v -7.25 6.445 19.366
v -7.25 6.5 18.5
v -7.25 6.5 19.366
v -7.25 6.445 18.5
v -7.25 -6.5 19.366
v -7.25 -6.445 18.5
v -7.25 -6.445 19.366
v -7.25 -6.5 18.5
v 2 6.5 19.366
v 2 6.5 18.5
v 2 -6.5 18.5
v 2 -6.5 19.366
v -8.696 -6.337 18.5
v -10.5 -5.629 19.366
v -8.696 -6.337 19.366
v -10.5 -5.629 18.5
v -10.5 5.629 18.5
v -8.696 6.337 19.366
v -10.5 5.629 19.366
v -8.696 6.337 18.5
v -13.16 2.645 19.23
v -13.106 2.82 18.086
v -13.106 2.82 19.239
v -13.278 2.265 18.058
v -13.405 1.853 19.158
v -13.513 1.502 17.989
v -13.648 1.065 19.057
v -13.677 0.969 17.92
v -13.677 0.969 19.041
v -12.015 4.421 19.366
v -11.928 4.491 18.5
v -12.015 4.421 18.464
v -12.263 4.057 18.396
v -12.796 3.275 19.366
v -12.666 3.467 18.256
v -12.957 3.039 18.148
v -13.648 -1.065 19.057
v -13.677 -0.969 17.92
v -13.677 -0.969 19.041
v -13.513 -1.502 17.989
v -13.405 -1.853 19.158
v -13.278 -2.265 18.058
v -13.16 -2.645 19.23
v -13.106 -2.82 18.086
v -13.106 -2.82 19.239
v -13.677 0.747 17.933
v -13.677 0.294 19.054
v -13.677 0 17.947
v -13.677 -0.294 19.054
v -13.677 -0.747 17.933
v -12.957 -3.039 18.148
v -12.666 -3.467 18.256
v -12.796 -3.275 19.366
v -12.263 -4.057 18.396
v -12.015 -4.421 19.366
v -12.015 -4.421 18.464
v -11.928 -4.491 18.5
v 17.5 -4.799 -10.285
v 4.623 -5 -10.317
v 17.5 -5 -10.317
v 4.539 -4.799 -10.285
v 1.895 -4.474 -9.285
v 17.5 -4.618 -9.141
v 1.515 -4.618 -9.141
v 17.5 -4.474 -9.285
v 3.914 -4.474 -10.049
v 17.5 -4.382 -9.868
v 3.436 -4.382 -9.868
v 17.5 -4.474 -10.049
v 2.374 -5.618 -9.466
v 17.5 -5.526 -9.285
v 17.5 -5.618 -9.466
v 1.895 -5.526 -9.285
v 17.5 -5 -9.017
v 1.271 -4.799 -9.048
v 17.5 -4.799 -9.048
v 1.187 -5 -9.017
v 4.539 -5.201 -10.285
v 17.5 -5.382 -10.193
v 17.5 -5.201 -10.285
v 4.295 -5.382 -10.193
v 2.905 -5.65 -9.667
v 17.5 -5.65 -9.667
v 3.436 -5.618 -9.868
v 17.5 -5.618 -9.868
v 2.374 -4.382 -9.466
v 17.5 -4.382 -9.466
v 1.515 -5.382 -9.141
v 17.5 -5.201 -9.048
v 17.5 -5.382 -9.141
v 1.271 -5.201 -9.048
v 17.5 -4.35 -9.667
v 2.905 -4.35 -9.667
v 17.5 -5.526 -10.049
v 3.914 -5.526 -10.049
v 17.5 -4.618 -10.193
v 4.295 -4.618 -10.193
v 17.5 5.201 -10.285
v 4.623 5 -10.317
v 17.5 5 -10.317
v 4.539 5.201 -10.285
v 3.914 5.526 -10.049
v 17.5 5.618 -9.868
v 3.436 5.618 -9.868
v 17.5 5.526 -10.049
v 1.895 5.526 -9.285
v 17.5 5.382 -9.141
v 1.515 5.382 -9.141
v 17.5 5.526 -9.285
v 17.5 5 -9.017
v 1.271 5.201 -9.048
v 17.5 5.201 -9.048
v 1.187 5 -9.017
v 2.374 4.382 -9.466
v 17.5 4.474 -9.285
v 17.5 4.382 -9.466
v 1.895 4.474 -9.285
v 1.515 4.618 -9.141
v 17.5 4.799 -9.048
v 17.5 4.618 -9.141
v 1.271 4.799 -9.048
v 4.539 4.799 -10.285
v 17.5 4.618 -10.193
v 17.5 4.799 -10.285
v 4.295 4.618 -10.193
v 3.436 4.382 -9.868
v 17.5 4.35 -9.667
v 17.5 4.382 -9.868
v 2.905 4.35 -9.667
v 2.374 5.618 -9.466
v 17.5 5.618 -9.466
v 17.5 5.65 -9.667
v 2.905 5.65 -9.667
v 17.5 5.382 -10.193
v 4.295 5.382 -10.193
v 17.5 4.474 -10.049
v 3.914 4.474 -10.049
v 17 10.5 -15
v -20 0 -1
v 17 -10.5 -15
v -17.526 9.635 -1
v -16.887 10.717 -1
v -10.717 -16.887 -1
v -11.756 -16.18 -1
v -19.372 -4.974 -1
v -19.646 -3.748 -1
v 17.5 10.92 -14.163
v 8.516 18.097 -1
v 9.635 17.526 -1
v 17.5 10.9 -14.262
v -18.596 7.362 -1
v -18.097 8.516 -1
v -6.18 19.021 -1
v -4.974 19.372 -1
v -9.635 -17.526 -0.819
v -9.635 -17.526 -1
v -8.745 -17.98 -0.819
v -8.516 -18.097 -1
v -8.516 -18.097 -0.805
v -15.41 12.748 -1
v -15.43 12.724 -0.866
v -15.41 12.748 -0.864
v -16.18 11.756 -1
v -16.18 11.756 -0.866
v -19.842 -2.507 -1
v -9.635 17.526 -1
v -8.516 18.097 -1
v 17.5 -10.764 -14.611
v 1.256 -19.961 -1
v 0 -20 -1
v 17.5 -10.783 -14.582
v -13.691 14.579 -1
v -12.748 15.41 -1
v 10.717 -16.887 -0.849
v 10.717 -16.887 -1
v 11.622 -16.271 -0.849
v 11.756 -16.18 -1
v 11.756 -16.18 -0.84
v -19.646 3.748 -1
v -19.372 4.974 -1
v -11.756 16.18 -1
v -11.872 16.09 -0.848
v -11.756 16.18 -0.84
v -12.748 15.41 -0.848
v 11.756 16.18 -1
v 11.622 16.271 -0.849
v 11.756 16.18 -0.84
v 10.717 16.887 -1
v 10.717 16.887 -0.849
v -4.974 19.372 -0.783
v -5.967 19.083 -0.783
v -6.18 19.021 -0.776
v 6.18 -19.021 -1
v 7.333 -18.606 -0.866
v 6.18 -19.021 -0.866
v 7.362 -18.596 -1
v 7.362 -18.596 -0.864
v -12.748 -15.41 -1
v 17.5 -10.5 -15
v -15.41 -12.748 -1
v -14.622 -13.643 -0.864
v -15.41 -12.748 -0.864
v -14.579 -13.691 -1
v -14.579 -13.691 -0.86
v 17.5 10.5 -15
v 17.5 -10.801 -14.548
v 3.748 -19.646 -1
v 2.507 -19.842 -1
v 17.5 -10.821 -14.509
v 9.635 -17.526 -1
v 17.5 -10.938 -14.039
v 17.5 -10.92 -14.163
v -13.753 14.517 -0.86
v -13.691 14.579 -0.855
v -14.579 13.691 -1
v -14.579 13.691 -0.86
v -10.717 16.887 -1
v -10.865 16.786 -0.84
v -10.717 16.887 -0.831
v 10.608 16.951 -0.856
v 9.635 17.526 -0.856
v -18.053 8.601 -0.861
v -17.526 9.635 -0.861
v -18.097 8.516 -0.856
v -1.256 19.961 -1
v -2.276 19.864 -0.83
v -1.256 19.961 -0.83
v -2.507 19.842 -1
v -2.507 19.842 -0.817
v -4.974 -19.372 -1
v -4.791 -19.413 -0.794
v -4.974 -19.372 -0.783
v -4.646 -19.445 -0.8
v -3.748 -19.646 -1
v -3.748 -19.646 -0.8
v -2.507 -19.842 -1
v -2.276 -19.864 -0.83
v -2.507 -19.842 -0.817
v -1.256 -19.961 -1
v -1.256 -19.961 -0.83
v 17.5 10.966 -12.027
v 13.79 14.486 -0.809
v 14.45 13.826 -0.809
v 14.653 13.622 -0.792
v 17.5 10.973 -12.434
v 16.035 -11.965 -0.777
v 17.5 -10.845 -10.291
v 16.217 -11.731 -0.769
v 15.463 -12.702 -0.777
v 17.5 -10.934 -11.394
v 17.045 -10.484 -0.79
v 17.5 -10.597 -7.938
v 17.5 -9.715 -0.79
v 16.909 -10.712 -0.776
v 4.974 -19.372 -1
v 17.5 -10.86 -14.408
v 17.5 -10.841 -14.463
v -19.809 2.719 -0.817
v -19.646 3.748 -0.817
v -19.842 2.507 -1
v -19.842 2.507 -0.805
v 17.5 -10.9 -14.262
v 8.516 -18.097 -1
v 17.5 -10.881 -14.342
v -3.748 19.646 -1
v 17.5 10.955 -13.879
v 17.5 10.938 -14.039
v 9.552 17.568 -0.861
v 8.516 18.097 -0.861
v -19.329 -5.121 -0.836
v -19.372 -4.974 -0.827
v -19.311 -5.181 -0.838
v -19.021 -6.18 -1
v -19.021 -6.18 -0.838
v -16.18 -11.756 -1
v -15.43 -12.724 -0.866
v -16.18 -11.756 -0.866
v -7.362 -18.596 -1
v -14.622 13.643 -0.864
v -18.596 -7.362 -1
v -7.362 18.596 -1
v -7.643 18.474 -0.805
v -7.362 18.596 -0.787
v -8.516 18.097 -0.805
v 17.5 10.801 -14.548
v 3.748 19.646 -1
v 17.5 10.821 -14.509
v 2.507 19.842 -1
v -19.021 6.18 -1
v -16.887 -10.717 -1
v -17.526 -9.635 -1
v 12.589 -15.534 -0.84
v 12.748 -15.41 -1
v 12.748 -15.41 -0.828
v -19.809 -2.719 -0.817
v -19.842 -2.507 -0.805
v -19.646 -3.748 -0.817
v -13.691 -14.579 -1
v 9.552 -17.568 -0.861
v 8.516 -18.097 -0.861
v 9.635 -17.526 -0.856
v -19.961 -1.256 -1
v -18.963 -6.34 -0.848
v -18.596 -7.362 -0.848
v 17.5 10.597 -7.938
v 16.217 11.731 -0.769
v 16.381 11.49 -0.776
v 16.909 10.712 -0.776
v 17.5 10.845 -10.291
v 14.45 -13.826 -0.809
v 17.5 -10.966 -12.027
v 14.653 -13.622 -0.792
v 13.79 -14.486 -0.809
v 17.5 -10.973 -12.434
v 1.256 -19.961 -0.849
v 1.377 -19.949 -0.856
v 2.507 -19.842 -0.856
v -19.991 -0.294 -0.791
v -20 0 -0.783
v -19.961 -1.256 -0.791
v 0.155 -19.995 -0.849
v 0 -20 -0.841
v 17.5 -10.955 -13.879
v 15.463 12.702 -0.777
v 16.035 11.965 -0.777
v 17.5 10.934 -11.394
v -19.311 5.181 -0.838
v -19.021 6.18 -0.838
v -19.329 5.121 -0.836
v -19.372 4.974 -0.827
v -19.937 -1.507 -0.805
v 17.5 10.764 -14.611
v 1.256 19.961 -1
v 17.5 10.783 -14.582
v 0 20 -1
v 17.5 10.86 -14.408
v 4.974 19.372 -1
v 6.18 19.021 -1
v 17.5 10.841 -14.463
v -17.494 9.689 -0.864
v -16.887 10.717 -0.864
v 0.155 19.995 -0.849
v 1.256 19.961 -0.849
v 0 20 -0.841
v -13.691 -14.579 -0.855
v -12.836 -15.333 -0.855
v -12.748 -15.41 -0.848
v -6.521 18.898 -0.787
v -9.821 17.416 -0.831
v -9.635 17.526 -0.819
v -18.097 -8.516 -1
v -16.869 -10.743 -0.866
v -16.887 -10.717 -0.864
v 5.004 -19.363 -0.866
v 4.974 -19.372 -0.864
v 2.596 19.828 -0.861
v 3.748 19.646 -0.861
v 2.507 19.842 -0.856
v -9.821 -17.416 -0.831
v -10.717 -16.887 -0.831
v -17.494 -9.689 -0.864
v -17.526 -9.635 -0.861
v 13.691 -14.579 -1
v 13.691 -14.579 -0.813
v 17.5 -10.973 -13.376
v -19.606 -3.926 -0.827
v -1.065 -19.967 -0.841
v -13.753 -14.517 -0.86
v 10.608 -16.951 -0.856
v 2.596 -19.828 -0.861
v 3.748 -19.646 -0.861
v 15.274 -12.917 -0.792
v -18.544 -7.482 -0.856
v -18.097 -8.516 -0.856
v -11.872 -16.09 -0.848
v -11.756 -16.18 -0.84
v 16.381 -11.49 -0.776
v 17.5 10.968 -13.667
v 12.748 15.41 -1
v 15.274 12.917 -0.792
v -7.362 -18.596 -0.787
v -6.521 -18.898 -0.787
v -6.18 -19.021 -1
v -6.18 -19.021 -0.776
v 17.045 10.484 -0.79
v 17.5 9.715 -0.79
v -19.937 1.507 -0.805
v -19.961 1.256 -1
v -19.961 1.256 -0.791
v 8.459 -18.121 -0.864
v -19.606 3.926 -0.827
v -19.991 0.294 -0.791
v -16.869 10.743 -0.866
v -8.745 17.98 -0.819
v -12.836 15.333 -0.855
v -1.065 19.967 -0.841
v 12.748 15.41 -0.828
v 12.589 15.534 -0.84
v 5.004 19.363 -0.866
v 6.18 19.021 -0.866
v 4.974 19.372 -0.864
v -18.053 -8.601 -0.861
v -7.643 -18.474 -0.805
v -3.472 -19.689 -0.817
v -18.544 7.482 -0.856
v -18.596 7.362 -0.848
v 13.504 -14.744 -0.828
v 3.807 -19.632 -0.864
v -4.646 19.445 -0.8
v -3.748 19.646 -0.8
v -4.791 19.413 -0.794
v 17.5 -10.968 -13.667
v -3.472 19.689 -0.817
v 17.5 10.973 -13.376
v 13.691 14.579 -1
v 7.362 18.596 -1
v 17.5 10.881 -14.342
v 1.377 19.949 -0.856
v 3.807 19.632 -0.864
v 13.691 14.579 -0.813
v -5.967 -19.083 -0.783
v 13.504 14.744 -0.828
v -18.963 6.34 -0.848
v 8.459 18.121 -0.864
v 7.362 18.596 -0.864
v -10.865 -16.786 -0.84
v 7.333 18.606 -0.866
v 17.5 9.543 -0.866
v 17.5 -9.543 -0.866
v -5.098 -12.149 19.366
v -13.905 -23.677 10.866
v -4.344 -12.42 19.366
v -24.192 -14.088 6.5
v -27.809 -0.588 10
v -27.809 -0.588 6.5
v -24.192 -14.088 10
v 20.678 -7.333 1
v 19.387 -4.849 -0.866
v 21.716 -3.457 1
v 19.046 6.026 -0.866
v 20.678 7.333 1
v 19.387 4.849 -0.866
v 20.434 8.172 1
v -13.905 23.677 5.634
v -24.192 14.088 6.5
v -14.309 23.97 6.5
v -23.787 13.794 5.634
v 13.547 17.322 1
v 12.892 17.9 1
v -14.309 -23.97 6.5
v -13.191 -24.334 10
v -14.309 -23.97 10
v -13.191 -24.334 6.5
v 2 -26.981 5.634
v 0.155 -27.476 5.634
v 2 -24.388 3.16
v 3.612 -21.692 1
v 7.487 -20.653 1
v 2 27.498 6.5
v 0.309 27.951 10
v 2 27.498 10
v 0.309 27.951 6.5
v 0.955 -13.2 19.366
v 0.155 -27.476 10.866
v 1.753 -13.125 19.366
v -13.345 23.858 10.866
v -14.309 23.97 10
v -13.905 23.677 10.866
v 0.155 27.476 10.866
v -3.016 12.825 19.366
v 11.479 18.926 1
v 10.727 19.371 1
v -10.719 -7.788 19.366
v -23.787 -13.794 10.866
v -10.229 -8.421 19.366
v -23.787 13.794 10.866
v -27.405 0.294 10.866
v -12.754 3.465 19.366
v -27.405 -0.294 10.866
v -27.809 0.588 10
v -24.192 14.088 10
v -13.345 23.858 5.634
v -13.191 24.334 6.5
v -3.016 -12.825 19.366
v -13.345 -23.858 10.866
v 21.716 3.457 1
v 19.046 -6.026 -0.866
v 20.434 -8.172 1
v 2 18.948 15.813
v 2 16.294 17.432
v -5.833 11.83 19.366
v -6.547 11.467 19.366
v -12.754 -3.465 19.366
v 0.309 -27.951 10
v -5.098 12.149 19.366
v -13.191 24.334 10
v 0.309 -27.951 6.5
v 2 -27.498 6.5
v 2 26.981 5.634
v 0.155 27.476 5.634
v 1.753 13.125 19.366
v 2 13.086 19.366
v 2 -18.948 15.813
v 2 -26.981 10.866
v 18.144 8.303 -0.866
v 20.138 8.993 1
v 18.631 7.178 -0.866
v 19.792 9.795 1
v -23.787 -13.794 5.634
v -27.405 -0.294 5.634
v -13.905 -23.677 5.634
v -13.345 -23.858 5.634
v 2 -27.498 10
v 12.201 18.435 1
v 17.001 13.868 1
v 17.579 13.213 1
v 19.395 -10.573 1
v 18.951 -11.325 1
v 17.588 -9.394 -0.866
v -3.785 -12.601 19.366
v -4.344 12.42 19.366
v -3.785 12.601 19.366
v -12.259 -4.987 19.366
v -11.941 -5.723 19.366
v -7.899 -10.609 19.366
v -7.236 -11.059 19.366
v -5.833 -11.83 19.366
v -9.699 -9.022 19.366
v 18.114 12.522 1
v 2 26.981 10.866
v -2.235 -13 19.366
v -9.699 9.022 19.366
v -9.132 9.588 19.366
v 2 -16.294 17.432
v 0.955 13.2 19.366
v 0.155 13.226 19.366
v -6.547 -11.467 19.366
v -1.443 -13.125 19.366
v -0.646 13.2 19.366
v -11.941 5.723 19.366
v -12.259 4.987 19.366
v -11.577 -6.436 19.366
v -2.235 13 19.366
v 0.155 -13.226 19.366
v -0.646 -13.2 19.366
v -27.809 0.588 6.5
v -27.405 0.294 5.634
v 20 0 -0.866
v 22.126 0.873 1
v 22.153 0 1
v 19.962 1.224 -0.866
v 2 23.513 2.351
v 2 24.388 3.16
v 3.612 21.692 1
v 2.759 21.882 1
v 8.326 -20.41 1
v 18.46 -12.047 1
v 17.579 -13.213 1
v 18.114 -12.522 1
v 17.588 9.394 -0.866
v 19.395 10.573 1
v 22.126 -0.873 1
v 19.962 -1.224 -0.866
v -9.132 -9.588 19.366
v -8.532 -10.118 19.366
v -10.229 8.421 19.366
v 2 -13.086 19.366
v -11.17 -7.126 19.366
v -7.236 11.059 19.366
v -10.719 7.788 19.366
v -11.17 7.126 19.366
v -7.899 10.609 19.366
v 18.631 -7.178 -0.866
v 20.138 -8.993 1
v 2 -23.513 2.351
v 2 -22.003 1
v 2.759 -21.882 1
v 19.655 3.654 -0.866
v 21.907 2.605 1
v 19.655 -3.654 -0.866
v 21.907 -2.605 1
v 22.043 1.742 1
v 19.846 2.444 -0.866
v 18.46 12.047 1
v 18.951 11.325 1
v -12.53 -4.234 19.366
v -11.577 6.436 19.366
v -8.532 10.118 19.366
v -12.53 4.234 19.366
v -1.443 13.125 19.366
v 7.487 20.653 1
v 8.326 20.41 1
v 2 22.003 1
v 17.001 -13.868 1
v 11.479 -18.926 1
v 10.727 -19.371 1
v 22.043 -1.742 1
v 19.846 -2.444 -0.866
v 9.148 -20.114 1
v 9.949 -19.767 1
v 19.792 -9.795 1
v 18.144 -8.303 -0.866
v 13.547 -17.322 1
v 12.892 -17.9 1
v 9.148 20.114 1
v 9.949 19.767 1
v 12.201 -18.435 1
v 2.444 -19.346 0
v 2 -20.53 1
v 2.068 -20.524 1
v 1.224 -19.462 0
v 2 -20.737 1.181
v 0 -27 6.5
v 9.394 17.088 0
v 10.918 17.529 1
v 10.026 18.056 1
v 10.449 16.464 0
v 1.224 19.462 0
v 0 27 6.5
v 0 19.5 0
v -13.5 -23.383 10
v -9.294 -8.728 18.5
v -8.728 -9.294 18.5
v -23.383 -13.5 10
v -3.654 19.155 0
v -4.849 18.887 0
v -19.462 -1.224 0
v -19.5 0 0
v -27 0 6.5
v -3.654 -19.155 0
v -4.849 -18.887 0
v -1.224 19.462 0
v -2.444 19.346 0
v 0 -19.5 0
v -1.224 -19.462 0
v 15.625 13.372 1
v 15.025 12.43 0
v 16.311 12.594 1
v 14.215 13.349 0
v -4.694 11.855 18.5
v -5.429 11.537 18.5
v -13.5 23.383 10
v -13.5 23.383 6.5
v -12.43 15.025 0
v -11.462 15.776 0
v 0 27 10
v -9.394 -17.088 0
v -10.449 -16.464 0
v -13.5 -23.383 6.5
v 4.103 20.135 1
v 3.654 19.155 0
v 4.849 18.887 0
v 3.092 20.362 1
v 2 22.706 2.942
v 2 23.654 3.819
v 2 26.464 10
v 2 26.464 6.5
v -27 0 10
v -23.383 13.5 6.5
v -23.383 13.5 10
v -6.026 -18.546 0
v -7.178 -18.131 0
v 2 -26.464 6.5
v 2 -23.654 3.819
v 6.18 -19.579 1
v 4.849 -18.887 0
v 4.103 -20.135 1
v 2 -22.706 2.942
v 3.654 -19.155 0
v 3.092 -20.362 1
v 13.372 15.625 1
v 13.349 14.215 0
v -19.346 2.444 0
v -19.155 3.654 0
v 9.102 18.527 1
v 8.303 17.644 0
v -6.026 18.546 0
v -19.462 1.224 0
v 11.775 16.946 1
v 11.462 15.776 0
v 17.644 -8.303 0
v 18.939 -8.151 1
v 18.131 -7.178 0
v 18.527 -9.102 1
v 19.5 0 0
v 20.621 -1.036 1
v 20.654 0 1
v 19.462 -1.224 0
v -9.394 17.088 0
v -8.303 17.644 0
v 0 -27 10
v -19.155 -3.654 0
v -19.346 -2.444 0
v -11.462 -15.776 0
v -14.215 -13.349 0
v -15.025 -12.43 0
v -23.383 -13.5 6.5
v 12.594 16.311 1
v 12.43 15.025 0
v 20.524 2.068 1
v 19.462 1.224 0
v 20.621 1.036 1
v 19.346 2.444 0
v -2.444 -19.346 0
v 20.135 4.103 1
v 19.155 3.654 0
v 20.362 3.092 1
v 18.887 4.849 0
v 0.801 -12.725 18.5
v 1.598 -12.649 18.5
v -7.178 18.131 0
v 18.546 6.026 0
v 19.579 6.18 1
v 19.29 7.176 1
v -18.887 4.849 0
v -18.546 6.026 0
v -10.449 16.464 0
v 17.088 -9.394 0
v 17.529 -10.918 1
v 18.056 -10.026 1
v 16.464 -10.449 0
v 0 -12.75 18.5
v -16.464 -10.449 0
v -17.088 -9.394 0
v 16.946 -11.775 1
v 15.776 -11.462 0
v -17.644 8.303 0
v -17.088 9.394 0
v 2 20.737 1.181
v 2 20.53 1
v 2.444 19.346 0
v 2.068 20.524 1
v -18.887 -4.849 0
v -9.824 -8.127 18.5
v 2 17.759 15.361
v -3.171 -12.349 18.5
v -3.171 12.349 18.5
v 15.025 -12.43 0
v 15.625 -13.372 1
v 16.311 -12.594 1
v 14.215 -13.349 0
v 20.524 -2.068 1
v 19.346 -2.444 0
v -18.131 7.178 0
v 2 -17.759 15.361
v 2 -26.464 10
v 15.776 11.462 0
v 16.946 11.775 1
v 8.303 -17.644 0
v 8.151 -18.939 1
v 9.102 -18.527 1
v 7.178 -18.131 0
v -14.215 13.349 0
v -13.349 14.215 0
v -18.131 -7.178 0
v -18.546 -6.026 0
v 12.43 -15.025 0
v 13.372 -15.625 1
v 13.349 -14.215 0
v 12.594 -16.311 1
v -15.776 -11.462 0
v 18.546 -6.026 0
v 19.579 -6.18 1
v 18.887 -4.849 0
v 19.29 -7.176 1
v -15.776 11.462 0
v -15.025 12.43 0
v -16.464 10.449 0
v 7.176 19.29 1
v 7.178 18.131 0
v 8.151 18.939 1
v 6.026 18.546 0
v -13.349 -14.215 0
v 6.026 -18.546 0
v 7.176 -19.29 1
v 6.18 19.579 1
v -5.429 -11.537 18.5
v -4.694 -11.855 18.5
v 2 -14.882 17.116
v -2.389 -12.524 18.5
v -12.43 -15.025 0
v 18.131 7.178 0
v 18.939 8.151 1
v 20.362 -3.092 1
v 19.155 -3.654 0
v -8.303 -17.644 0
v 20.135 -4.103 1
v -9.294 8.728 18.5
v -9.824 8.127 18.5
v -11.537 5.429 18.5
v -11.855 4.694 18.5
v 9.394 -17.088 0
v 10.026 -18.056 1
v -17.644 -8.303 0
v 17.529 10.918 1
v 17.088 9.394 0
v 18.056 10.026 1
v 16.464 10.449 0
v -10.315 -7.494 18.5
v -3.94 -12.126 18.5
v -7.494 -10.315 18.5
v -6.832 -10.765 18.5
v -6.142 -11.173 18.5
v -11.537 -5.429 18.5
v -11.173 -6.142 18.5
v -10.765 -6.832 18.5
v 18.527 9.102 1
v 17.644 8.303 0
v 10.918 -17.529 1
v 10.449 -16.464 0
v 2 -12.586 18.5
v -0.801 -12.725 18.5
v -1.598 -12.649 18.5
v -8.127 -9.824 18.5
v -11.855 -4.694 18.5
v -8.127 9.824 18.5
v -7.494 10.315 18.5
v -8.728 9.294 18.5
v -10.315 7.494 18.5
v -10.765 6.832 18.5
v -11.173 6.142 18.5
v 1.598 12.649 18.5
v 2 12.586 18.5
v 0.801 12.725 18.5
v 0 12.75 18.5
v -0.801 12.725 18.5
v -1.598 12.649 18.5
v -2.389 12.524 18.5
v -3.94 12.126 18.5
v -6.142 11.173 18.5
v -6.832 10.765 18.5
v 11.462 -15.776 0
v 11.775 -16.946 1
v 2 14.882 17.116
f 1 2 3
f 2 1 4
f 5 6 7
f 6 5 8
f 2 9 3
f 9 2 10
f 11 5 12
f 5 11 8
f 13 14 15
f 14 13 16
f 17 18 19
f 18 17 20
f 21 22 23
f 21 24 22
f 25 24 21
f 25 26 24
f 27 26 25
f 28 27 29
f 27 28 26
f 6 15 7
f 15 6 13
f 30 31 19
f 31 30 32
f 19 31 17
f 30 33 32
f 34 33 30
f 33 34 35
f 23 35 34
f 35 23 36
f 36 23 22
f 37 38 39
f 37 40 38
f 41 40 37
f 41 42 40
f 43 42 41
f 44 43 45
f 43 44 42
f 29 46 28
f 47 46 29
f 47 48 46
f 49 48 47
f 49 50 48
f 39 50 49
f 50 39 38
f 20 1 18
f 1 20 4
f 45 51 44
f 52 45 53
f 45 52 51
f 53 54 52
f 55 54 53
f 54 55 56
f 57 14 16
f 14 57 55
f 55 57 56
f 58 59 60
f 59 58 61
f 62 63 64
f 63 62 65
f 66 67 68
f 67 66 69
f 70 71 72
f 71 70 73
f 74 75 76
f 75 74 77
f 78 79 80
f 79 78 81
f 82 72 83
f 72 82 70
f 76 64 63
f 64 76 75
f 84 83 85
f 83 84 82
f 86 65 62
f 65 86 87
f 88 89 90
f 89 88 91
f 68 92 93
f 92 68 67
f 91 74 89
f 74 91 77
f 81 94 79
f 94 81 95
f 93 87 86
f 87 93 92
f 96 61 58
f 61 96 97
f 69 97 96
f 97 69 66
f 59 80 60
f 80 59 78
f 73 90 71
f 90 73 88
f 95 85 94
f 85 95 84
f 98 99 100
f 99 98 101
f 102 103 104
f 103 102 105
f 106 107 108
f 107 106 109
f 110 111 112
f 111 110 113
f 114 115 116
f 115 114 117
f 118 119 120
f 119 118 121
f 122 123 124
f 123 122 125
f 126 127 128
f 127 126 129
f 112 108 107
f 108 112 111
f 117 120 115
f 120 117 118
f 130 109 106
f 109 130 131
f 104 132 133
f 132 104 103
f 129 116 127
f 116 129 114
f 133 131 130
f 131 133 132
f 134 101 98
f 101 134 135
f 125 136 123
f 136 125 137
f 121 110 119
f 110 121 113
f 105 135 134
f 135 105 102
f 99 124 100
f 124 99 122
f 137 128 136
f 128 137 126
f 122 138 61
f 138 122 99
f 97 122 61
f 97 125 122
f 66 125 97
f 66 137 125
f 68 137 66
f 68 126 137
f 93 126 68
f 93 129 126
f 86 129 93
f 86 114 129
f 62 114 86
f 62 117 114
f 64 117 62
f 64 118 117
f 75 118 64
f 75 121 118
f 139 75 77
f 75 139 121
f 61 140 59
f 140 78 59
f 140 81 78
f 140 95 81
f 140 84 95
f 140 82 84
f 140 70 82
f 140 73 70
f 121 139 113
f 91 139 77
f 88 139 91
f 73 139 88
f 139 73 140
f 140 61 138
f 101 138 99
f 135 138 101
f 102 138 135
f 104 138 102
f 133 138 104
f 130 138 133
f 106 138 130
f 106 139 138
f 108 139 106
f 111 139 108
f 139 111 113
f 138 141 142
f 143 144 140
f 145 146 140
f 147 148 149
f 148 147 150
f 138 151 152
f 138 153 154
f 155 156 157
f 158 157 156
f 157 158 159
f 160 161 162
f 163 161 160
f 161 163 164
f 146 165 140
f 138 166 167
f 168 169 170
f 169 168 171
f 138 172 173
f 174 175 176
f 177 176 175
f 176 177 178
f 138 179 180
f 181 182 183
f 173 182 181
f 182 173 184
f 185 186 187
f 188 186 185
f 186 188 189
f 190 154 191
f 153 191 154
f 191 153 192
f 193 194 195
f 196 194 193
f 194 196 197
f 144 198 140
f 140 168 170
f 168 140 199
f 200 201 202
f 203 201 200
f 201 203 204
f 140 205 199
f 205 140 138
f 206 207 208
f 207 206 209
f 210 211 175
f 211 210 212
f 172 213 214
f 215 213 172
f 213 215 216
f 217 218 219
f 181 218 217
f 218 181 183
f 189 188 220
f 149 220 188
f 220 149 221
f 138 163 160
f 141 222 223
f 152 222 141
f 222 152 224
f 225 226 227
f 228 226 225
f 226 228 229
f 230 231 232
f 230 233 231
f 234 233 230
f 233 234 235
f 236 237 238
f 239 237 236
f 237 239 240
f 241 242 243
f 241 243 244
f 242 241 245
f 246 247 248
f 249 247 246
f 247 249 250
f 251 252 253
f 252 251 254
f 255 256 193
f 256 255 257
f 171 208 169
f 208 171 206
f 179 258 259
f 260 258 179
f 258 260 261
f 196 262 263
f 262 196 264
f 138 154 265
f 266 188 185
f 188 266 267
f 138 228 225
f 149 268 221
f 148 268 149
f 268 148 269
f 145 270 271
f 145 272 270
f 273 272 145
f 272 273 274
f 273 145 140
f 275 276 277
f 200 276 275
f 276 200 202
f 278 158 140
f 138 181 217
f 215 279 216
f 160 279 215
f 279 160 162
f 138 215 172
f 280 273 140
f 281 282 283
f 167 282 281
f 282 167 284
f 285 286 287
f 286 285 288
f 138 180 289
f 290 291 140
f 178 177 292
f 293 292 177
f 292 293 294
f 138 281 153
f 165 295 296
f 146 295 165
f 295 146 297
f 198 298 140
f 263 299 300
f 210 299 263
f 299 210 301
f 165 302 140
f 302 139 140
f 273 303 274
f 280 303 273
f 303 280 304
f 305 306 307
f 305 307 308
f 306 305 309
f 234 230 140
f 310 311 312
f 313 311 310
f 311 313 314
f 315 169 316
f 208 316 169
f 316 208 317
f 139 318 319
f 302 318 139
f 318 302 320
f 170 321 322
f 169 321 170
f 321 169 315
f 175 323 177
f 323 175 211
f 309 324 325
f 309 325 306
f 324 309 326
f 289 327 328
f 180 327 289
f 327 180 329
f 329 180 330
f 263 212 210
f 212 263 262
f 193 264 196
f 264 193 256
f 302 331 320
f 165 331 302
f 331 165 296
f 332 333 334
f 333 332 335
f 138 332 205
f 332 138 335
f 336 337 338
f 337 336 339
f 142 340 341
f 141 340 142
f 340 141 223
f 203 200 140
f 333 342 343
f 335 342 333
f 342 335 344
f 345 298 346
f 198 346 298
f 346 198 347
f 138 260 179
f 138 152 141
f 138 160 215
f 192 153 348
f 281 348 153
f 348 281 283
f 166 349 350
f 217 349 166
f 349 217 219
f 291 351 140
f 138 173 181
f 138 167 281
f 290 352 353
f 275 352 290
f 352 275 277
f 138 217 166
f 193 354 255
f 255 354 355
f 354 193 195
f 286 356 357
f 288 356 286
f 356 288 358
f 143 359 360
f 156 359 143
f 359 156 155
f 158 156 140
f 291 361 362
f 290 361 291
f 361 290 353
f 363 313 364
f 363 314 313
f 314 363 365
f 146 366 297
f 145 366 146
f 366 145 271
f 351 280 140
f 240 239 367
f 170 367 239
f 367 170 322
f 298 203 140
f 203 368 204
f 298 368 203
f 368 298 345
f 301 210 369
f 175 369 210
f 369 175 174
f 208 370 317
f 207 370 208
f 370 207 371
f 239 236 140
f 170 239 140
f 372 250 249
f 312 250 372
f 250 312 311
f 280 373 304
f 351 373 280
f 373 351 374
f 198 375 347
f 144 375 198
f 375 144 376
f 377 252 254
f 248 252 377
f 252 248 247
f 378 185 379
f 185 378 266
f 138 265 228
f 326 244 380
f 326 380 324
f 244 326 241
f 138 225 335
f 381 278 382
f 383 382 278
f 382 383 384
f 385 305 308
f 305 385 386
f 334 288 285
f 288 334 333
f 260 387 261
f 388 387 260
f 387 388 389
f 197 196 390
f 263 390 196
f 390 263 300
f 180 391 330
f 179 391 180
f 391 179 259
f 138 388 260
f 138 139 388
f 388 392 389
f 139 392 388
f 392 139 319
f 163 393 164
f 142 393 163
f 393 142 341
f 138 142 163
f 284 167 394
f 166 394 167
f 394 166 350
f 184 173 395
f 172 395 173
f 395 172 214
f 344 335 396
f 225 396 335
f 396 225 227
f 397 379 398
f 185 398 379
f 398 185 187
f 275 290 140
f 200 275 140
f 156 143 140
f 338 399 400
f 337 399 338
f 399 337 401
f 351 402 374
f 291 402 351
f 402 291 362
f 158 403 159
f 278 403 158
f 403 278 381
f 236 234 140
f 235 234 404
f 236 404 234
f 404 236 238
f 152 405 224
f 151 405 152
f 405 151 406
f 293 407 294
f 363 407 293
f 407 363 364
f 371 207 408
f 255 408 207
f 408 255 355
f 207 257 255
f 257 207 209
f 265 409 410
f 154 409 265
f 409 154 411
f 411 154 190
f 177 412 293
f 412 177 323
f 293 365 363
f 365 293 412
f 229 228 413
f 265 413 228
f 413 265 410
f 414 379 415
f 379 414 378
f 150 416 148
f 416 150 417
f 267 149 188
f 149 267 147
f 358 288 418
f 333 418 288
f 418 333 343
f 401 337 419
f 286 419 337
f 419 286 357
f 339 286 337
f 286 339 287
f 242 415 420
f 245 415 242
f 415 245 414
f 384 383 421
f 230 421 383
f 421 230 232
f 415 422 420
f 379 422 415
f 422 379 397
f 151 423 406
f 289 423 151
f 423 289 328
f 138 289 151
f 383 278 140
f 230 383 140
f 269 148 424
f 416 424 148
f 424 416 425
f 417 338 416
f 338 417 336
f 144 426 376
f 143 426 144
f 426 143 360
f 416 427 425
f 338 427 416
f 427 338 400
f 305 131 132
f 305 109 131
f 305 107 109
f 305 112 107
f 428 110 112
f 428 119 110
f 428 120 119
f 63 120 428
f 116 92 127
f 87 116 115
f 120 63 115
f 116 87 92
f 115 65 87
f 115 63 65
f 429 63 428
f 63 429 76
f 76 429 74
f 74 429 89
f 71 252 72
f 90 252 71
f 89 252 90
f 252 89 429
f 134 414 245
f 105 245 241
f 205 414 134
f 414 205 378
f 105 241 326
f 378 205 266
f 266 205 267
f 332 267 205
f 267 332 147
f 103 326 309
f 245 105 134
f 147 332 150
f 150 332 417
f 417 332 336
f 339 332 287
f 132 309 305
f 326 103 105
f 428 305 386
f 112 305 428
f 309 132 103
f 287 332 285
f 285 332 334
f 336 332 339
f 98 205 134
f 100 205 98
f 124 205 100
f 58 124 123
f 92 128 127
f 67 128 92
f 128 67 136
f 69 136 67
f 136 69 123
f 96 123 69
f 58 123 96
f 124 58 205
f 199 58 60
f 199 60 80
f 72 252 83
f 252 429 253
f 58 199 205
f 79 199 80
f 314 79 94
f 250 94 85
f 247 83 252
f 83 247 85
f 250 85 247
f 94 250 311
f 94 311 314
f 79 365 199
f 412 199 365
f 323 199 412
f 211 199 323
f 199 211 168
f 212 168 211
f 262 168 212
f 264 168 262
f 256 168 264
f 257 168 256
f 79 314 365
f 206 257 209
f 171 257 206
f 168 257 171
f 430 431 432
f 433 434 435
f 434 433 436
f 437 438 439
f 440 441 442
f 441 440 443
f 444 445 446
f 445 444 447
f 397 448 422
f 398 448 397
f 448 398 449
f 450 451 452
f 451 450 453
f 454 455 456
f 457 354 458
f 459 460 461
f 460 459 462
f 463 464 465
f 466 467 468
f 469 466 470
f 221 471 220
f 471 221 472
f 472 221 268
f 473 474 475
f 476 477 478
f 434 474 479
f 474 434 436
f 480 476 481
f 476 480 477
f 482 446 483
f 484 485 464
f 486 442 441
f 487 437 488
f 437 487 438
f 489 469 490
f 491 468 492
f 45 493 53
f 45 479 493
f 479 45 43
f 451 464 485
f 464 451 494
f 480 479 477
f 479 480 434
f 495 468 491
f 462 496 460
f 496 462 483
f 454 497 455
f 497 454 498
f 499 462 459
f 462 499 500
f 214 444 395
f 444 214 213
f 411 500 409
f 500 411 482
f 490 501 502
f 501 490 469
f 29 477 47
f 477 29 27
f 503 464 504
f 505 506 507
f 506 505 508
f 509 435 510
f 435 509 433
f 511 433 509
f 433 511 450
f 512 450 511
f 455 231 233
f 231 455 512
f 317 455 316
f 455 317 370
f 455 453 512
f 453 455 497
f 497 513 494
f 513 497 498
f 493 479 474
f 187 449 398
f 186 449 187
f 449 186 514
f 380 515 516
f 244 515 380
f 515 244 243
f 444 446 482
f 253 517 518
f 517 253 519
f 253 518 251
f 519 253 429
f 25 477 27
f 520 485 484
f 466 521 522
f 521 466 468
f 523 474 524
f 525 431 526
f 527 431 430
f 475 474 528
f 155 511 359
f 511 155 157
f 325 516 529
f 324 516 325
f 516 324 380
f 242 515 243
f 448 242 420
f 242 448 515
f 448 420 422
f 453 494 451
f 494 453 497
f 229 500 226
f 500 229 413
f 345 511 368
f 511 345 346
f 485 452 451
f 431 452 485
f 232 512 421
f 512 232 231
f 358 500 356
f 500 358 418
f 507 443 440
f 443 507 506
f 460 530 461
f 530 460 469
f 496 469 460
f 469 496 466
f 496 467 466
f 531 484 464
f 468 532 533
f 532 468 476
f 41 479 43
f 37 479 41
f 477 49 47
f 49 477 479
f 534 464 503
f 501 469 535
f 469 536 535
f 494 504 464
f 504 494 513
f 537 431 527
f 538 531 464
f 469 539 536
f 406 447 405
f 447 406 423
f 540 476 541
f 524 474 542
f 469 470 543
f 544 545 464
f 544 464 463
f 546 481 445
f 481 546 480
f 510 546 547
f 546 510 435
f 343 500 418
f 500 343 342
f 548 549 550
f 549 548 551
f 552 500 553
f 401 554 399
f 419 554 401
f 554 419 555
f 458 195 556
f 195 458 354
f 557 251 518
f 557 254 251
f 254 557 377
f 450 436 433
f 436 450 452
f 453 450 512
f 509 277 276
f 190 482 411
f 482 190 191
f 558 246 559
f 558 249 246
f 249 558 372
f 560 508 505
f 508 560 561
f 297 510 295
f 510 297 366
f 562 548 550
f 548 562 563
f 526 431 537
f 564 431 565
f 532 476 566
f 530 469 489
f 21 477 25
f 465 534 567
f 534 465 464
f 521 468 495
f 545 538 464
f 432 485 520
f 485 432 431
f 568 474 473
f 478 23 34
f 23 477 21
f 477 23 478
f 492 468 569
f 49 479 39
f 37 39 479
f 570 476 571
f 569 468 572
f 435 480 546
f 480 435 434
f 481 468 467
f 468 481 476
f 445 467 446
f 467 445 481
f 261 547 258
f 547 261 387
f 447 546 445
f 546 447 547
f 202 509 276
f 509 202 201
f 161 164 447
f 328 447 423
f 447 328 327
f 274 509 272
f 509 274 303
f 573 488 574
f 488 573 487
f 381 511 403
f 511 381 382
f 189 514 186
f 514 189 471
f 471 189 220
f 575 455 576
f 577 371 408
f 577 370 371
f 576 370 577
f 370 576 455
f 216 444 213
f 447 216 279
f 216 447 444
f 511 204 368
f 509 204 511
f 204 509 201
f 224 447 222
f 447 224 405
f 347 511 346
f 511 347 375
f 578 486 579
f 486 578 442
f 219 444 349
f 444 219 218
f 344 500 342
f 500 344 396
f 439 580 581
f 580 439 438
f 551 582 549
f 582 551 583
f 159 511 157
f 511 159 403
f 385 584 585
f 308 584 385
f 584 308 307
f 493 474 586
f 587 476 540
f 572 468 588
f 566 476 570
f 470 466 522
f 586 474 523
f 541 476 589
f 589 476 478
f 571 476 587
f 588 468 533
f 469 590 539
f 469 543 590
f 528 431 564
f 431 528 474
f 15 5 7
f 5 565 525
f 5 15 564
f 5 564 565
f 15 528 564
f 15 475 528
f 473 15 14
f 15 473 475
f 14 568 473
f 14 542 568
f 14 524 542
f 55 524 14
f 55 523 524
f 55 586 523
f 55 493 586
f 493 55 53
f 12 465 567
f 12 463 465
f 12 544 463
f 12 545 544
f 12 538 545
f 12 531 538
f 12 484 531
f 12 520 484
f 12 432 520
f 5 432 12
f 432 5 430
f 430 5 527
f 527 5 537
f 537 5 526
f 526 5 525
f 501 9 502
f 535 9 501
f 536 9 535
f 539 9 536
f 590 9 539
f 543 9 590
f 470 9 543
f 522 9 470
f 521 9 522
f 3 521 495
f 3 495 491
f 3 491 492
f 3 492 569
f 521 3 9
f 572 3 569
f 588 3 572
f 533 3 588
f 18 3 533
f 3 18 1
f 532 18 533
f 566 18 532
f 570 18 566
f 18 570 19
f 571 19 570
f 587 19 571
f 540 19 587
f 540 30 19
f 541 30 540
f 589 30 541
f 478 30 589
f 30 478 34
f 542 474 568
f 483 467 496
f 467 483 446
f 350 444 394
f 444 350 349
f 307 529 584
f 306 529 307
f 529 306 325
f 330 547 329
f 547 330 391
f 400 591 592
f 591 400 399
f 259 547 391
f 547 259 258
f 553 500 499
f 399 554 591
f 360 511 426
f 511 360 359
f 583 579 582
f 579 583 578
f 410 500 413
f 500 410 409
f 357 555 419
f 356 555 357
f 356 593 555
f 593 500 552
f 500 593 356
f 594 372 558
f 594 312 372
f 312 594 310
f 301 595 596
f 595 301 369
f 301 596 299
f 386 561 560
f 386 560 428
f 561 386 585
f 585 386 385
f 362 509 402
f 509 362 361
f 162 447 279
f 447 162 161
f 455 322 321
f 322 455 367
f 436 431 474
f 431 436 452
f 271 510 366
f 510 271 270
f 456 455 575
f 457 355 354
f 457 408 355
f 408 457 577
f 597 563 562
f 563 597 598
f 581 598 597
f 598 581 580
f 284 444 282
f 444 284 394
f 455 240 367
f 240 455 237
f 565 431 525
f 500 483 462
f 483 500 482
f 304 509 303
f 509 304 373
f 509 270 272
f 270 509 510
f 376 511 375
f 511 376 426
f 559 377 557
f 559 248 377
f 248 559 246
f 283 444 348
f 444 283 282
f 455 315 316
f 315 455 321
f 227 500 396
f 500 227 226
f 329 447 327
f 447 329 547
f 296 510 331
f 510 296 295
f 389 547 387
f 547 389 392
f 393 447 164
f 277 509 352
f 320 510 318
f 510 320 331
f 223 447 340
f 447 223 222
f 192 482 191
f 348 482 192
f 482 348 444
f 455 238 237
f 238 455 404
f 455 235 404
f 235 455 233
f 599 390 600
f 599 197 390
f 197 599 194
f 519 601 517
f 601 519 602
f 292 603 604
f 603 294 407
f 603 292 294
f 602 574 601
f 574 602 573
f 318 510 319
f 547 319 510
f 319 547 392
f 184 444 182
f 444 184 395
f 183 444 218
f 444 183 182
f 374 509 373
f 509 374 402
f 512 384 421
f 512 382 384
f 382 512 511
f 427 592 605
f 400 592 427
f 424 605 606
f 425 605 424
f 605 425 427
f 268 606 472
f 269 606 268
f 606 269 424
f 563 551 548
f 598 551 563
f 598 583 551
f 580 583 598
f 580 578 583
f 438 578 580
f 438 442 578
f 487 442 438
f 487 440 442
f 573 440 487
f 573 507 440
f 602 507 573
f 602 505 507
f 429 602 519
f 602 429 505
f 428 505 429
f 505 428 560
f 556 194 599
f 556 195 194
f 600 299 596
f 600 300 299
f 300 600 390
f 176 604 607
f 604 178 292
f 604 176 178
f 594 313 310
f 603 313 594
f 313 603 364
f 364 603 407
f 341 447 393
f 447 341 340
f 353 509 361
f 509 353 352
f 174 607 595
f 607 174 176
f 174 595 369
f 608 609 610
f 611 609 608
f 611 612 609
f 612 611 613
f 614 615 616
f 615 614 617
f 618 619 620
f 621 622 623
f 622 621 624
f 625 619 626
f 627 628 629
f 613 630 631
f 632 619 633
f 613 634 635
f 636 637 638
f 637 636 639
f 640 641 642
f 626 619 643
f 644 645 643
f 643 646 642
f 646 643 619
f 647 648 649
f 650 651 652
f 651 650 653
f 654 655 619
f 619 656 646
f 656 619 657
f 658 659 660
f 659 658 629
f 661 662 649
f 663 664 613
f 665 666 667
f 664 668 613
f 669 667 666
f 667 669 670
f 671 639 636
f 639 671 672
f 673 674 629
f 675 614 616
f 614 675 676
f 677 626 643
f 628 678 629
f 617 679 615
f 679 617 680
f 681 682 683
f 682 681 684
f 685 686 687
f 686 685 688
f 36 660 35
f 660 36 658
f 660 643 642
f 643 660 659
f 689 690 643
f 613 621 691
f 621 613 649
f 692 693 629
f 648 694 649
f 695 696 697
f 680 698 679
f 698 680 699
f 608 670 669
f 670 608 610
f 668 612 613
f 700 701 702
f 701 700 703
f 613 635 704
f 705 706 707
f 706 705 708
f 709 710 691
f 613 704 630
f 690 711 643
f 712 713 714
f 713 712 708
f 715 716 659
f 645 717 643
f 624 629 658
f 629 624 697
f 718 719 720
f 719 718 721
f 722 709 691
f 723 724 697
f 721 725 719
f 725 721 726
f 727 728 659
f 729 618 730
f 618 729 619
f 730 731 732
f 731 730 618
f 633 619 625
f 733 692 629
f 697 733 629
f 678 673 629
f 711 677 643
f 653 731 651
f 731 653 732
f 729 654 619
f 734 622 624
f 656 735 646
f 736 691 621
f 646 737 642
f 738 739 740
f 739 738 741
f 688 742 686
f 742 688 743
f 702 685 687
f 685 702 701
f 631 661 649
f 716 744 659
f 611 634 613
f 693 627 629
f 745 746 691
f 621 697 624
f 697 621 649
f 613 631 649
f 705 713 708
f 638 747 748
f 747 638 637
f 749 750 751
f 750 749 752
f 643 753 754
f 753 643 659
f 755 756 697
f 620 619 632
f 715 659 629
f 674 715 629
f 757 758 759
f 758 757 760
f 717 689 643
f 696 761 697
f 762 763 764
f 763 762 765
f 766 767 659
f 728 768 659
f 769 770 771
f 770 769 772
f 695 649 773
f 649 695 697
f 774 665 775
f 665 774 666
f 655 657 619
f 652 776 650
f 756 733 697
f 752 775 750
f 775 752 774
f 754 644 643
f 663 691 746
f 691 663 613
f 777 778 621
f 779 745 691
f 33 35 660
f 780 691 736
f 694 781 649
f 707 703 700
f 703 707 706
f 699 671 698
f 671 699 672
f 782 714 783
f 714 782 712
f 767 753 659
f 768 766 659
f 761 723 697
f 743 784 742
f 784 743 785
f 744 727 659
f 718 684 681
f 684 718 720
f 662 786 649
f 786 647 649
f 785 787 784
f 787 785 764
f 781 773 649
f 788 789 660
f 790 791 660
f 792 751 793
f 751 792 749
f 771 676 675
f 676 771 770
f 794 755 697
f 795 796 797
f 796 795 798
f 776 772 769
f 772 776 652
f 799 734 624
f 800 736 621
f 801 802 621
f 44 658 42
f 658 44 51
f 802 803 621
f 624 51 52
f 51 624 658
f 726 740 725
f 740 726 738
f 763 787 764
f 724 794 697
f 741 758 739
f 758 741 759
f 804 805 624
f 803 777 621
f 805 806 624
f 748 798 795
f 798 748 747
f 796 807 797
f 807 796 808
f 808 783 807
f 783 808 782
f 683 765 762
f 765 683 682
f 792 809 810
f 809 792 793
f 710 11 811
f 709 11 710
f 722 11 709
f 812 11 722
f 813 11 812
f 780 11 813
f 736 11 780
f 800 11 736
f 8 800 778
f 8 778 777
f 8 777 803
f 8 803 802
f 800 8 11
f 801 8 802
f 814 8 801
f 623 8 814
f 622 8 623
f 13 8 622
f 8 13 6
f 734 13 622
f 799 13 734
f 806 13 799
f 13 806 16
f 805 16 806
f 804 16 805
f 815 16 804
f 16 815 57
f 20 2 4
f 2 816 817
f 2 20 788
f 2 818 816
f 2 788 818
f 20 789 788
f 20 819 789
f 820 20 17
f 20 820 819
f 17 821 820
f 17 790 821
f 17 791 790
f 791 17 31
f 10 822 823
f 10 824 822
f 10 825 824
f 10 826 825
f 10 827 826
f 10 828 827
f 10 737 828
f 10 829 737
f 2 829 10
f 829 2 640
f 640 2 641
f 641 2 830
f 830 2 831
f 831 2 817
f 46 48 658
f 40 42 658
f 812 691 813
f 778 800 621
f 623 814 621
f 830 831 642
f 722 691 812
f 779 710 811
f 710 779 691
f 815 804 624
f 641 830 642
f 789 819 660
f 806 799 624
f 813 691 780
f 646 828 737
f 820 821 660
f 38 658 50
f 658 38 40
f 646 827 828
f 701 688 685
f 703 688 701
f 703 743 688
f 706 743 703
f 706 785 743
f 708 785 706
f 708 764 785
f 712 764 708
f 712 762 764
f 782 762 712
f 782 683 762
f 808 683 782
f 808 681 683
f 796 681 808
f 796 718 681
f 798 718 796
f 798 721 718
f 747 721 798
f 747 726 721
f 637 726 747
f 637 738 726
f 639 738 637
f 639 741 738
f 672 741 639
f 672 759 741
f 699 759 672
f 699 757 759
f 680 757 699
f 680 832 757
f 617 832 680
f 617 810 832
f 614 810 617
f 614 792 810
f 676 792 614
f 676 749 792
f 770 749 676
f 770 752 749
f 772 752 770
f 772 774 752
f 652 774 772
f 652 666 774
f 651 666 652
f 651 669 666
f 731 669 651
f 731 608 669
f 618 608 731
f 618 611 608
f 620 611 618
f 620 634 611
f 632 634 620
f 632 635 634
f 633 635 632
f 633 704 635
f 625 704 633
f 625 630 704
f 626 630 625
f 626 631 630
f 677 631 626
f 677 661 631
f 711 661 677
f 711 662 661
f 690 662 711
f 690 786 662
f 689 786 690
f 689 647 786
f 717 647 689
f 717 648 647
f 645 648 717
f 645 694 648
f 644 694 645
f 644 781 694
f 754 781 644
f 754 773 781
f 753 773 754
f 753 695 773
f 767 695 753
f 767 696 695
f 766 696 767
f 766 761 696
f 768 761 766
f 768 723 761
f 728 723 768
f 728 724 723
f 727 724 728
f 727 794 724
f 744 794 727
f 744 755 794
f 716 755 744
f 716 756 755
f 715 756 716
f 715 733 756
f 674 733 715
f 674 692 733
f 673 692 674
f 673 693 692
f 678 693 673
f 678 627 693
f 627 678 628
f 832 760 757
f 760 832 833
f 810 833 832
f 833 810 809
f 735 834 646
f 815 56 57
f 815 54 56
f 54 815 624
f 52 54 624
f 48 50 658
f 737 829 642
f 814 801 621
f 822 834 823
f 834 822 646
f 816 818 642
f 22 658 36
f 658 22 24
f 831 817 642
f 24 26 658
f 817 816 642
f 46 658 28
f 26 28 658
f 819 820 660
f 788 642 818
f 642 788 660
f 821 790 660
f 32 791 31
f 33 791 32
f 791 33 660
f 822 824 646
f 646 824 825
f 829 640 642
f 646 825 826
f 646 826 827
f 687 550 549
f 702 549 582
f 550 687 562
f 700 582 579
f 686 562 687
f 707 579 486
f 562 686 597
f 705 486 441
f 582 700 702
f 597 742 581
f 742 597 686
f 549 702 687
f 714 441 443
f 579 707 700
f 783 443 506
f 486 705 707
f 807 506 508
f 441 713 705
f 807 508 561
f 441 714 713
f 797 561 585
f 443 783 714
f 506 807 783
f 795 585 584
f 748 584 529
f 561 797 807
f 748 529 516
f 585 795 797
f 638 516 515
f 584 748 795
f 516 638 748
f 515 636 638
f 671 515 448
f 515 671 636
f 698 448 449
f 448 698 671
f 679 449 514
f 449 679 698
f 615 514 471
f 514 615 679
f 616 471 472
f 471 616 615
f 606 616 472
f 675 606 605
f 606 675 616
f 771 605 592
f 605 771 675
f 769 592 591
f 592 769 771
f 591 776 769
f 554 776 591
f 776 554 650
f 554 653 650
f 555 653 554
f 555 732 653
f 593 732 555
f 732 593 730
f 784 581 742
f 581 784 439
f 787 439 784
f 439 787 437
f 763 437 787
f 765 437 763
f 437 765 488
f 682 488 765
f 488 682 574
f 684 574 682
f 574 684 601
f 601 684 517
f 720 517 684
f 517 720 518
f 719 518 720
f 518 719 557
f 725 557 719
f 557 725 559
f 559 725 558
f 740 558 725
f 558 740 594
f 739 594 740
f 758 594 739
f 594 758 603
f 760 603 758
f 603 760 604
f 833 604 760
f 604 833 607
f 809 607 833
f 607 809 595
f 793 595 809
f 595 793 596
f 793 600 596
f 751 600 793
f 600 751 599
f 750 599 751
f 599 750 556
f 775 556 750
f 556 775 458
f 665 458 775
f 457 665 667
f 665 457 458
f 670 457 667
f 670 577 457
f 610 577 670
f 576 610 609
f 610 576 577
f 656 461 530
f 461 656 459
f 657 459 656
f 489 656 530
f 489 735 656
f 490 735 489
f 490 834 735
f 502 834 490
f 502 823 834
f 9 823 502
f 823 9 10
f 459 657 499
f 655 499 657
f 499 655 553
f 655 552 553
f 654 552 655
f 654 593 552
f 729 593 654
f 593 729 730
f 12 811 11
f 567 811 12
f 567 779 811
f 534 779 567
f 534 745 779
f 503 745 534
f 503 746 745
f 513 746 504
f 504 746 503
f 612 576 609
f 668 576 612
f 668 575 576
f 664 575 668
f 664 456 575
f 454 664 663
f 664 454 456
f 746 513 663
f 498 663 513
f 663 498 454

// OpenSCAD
receiver_d = 54;
receiver_tip_h = 3.5;
receiver_tip_offs = 6.5;
receiver_lower_d = 39;
receiver_h = 18.5;
receiver_top_d = 25.5;
receiver_top_slit = 13;

profil_w = 21;
profil_h = 13;
profil_screw_dist = 10;

screw_gripping_d = 1.3;

ws = 1;

module receiver() {
	hull(){
		cylinder(d = receiver_lower_d, h = 1, $fn = 100);
		translate([0,0,receiver_tip_offs])
			cylinder(d = receiver_d, h = receiver_tip_h, $fn = 12);
		translate([0,0,receiver_h-1])
			cylinder(d = receiver_top_d, h = 1, $fn = 100);
	}
}

difference() {
	minkowski() {
		receiver();
		sphere(d = ws*2);
	}
	
	receiver();
	
	// side einschub
	translate([2,-receiver_d/2-ws,ws]) {
		cube([receiver_d+2*ws, receiver_d+2*ws, receiver_h+ws]);
	}
	
	//slot top
	translate([receiver_top_slit/2-receiver_top_d/2-ws, 0,ws]) {
		translate([0, -receiver_top_slit/2, 0])
			cube([receiver_top_d, receiver_top_slit, receiver_h]);
		cylinder(d = receiver_top_slit, h = receiver_h);
	}
	
	/*
	#hull() {
		receiver();
		translate([-receiver_d, 0, 0])
			receiver();
	}
	*/
}

shelf = 2*ws;
// lower holder
translate([0, 0, -ws]) {
	difference() {
		hull() {
			cylinder(d = receiver_lower_d+ws, h = ws/2, $fn = 100);
			translate([receiver_lower_d/2-ws-shelf+ws/2, -profil_w/2, -profil_h-ws])
				cube([ws, profil_w, ws]);
		}
		//resting "shelf"
		translate([receiver_lower_d/2-shelf, -receiver_lower_d, -receiver_lower_d+ws])
			cube([receiver_lower_d/2, 2*receiver_lower_d, receiver_lower_d]);
		
		// screw holes
		for(y = [-profil_screw_dist/2, profil_screw_dist/2])
			translate([receiver_d/2, y, -2*profil_h/3])
				rotate([0, -90, 0])
					cylinder(d = screw_gripping_d, h = receiver_d, $fn = 20);
	}
}
